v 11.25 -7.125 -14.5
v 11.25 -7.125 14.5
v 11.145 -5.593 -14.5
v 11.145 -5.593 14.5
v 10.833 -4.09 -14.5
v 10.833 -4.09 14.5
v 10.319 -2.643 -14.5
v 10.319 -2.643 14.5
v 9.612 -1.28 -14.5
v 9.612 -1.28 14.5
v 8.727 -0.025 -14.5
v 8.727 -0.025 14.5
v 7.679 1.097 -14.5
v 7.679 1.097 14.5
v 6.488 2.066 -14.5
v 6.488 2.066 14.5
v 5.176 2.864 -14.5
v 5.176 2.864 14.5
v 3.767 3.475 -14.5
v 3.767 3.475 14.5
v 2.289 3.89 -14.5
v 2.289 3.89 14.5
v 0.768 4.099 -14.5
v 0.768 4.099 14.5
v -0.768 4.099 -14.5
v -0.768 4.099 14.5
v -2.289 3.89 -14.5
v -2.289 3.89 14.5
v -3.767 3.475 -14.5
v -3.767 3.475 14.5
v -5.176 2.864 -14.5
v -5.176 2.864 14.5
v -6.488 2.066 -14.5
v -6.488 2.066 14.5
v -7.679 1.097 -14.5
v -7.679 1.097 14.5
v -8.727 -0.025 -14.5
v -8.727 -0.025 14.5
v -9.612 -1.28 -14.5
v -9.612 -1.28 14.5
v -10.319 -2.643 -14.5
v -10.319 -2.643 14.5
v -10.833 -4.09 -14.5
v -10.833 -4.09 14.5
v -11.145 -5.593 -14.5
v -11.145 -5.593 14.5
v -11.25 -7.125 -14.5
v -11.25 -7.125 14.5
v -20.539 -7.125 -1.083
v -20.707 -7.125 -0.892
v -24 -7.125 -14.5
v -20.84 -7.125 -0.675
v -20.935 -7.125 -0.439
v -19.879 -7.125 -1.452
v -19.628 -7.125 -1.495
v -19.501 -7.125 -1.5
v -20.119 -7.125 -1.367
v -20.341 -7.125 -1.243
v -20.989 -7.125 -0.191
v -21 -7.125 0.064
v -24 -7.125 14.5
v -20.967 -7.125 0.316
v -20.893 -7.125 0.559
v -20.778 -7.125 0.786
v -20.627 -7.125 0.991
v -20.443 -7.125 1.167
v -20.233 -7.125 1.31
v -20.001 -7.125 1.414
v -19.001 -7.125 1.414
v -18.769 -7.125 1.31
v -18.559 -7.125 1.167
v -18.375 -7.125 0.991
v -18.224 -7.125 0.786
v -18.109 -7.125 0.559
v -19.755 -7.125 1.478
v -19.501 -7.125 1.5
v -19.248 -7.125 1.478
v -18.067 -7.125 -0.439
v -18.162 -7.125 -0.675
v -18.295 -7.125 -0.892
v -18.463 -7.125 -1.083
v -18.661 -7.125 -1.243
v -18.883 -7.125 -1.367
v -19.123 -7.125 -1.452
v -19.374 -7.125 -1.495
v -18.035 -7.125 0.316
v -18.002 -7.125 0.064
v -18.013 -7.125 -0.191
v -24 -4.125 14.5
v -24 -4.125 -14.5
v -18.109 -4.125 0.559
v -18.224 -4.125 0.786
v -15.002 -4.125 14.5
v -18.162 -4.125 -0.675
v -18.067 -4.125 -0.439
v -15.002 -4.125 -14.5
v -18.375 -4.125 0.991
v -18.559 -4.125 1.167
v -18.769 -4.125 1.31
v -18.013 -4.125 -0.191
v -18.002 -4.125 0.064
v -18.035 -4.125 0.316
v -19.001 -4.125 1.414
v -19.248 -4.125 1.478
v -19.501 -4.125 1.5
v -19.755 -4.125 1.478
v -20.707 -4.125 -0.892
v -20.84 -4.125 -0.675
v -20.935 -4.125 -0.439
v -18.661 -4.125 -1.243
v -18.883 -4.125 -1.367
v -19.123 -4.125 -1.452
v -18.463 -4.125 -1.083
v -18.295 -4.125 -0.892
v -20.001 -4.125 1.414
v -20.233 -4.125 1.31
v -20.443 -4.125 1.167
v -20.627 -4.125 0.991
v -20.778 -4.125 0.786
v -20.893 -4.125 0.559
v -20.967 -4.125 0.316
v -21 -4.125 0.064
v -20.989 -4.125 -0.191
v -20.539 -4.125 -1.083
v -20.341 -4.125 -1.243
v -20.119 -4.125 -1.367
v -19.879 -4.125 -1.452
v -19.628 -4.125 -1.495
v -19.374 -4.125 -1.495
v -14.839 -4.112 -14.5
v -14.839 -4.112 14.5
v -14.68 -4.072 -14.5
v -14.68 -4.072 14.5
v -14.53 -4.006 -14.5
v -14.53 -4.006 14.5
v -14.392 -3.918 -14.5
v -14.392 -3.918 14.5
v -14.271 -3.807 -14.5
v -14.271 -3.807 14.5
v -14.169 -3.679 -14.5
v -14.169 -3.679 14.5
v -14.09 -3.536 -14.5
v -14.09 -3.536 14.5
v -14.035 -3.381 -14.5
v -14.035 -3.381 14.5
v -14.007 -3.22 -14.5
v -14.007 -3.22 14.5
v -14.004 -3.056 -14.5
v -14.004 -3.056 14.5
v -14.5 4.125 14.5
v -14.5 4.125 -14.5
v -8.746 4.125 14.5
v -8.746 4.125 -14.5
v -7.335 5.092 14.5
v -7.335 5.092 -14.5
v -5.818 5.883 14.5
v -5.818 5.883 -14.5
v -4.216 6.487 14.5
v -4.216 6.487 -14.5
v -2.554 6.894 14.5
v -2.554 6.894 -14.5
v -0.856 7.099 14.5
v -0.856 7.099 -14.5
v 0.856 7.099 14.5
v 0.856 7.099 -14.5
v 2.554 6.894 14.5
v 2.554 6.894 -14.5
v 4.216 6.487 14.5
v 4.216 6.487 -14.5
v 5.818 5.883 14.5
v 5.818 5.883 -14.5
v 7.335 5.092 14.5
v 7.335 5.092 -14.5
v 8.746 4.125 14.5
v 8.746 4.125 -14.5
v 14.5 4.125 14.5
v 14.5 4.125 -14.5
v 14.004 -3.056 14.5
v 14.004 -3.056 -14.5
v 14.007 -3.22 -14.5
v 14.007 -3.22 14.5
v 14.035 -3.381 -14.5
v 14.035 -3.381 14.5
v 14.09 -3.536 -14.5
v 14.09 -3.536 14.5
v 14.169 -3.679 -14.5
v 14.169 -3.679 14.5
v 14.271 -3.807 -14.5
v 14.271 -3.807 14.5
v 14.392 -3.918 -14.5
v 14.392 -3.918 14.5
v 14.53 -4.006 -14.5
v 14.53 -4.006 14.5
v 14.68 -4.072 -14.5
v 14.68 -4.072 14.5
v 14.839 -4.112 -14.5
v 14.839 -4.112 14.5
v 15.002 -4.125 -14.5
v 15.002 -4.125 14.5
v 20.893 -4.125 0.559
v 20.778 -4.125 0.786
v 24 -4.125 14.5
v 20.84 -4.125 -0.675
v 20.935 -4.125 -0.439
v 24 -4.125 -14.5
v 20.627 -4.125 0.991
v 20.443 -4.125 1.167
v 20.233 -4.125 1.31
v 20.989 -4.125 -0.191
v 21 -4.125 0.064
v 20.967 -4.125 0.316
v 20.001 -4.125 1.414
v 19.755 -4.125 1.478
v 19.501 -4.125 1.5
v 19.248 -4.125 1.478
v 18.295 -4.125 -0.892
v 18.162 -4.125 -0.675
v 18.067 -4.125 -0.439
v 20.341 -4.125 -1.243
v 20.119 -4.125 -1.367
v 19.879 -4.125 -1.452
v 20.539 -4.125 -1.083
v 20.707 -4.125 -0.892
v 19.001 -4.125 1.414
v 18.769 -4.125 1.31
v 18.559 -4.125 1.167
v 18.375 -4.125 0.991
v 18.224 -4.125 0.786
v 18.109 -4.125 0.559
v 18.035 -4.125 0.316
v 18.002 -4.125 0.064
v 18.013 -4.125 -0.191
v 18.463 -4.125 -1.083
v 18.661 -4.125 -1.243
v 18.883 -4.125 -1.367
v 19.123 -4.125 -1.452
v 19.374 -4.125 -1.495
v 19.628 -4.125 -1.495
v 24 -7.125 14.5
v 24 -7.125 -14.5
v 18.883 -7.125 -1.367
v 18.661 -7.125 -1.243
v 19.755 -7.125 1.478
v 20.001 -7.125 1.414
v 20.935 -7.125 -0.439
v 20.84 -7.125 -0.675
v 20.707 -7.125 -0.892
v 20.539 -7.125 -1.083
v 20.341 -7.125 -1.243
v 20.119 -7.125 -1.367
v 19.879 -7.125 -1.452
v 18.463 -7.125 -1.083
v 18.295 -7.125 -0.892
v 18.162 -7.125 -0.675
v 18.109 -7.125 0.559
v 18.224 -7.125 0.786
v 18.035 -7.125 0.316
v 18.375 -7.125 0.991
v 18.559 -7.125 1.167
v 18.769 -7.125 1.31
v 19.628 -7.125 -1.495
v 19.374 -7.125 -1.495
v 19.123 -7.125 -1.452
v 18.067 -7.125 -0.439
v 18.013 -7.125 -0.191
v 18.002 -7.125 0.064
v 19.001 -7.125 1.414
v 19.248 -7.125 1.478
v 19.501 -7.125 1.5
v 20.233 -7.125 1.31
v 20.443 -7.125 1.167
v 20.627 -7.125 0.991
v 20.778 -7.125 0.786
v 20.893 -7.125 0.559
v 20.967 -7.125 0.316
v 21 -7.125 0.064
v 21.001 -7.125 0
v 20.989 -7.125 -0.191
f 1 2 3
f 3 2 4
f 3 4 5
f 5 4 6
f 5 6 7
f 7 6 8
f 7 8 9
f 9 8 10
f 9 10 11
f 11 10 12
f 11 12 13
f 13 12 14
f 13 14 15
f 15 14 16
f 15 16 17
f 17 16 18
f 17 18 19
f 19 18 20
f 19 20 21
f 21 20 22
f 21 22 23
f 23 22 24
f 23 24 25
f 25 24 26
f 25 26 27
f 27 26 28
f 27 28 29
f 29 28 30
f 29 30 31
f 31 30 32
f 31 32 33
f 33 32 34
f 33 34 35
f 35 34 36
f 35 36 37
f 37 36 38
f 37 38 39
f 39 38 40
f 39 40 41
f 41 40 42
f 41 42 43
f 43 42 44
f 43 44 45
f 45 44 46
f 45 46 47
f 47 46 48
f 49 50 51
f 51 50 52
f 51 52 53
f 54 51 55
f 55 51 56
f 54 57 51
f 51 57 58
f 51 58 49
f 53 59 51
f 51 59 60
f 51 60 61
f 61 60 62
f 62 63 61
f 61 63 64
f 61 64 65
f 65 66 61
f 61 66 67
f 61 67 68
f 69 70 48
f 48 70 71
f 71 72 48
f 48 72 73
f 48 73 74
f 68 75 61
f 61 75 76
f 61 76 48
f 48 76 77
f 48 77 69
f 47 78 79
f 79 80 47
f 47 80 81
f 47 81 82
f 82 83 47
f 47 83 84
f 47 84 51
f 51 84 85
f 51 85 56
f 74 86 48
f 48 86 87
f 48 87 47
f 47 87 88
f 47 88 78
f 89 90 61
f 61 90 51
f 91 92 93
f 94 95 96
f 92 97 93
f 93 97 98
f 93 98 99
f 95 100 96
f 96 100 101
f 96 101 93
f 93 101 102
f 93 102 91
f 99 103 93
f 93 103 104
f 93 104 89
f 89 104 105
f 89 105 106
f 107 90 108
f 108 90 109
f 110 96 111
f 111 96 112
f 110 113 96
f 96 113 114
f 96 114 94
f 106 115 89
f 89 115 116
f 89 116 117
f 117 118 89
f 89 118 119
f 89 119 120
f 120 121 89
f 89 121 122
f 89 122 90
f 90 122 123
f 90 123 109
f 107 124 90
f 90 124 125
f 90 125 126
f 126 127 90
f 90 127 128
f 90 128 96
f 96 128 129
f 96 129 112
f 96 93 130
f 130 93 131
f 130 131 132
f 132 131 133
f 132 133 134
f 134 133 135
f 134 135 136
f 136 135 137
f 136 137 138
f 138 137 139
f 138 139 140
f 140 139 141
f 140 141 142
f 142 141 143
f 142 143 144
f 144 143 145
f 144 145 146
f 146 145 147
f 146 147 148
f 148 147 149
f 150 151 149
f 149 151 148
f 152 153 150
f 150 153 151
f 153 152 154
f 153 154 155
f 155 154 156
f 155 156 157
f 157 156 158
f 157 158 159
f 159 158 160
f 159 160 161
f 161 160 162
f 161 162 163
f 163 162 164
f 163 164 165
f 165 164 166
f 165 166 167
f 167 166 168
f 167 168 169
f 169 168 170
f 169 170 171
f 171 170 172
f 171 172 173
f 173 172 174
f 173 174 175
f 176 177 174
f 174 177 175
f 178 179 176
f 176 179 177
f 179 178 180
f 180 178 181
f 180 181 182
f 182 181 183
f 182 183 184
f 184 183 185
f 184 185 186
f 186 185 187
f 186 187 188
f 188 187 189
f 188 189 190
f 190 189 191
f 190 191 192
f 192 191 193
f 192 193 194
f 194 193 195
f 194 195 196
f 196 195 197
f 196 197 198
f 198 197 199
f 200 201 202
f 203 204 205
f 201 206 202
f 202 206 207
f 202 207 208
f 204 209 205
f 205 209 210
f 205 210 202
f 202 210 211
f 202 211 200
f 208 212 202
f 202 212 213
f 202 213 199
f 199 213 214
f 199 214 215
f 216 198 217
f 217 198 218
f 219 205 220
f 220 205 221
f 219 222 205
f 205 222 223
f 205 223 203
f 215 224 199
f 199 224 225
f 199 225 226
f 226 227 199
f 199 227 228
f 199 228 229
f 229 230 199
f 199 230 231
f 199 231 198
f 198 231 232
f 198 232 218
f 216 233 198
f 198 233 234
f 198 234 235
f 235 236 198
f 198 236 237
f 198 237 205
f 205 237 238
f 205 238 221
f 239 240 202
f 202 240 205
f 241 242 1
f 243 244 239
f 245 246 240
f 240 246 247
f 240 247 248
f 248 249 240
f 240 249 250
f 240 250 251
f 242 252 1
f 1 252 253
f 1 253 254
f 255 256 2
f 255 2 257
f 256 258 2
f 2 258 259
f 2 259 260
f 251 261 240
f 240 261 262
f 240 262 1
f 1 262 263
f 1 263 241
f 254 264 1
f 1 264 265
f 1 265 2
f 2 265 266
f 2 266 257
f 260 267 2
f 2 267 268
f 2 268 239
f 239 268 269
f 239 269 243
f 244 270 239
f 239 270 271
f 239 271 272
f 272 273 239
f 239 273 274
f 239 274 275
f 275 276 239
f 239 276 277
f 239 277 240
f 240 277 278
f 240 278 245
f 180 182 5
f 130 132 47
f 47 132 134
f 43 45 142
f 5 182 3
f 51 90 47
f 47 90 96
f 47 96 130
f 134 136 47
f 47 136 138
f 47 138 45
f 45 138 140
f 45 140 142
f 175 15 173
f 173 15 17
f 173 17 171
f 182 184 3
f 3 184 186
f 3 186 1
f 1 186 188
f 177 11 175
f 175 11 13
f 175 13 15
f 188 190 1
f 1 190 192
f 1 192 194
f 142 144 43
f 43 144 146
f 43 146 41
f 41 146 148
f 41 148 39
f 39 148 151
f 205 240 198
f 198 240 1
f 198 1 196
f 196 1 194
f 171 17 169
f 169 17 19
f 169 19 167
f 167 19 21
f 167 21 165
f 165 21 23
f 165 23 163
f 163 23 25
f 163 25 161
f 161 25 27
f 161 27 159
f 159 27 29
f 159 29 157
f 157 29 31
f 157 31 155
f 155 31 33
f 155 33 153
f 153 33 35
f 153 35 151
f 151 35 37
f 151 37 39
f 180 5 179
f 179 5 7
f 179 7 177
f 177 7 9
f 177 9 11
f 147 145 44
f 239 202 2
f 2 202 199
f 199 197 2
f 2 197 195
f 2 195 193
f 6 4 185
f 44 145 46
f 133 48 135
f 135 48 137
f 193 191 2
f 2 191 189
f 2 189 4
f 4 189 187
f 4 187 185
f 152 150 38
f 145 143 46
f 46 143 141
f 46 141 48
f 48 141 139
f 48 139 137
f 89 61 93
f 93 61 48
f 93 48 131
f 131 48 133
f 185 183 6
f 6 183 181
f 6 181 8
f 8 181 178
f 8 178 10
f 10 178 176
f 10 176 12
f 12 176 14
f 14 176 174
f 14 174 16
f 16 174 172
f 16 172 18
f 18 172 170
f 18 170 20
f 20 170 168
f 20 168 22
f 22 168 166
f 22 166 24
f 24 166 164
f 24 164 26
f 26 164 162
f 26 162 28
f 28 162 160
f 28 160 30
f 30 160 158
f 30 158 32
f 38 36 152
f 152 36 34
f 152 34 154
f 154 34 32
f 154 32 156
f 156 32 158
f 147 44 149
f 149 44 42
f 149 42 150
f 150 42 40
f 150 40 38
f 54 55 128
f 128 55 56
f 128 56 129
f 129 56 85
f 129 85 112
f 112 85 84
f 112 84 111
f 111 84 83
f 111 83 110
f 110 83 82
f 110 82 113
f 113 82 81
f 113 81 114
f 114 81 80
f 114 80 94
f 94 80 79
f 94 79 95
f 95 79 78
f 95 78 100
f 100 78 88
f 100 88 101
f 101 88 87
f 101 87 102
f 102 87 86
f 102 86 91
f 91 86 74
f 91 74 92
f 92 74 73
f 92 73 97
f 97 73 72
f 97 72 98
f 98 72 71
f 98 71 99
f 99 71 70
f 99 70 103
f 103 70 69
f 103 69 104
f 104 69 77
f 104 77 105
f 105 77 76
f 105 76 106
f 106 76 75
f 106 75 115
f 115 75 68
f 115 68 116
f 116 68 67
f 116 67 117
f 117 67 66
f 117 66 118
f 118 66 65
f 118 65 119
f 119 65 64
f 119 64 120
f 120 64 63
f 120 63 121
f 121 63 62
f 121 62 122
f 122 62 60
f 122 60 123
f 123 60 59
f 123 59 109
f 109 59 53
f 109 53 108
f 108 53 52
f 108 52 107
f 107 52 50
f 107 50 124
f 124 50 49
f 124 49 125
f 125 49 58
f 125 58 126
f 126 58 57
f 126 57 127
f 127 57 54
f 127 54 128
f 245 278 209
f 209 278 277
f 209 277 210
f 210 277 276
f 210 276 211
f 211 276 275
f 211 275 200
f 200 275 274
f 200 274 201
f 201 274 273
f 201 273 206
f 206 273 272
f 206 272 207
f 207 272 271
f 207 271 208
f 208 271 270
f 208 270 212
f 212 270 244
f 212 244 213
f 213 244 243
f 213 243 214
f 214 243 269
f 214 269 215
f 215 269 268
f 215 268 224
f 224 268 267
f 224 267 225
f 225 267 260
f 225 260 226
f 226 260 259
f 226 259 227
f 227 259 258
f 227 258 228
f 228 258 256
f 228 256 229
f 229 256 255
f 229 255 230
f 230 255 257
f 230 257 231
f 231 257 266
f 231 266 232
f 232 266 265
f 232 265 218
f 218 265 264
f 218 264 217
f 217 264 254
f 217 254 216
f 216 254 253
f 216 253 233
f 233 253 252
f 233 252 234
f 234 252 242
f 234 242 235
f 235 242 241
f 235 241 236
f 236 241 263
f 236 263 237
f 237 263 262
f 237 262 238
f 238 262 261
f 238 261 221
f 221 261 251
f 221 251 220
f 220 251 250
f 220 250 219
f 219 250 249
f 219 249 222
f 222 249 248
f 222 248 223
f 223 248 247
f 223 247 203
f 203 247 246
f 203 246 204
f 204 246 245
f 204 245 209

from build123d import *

# Parameters (mm, degrees)
BOSS_EXTRUDE1_DEPTH      = 14.5
BOSS_EXTRUDE1_DEPTH_BACK = 14.5
SKETCH2_R                = 1.5
CUT_EXTRUDE1_DEPTH       = 14.5


with BuildPart() as part:
    # Sketch1 → Boss-Extrude1 (new, two sides: drawn at the far end of the back side and taken through both)
    with BuildSketch(Plane.XY.offset(-BOSS_EXTRUDE1_DEPTH_BACK)):
        with BuildLine():
            Line((-11.25, -7.125), (-20, -7.125))
            Line((-20, -7.125), (-24, -7.125))
            Line((-24, -7.125), (-24, -4.125))
            Line((-24, -4.125), (-20, -4.125))
            Line((-20, -4.125), (-15.002024714, -4.125))
            ThreePointArc((-15.002024714, -4.125), (-14.270980746, -3.807330358), (-14.004397729, -3.056149435))
            Line((-14.004397729, -3.056149435), (-14.5, 4.125))
            Line((-14.5, 4.125), (-8.746427842, 4.125))
            ThreePointArc((-8.746427842, 4.125), (0, 7.125), (8.746427842, 4.125))
            Line((8.746427842, 4.125), (14.5, 4.125))
            Line((14.5, 4.125), (14.004397729, -3.056149435))
            ThreePointArc((14.004397729, -3.056149435), (14.270980746, -3.807330358), (15.002024714, -4.125))
            Line((15.002024714, -4.125), (20, -4.125))
            Line((20, -4.125), (24, -4.125))
            Line((24, -4.125), (24, -7.125))
            Line((24, -7.125), (20, -7.125))
            Line((20, -7.125), (11.25, -7.125))
            ThreePointArc((11.25, -7.125), (0, 4.125), (-11.25, -7.125))
        make_face()
    extrude(amount=BOSS_EXTRUDE1_DEPTH + BOSS_EXTRUDE1_DEPTH_BACK)

    # Sketch2 → Cut-Extrude1 (cut)
    with BuildSketch(Plane(origin=(0, -4.125, 0), x_dir=(1, 0, 0), z_dir=(0, 1, 0))):
        with Locations((-19.501012357, 0)):
            Circle(SKETCH2_R)
        with Locations((19.501012357, 0)):
            Circle(SKETCH2_R)
    extrude(amount=-CUT_EXTRUDE1_DEPTH, mode=Mode.SUBTRACT)


solid = part.part
